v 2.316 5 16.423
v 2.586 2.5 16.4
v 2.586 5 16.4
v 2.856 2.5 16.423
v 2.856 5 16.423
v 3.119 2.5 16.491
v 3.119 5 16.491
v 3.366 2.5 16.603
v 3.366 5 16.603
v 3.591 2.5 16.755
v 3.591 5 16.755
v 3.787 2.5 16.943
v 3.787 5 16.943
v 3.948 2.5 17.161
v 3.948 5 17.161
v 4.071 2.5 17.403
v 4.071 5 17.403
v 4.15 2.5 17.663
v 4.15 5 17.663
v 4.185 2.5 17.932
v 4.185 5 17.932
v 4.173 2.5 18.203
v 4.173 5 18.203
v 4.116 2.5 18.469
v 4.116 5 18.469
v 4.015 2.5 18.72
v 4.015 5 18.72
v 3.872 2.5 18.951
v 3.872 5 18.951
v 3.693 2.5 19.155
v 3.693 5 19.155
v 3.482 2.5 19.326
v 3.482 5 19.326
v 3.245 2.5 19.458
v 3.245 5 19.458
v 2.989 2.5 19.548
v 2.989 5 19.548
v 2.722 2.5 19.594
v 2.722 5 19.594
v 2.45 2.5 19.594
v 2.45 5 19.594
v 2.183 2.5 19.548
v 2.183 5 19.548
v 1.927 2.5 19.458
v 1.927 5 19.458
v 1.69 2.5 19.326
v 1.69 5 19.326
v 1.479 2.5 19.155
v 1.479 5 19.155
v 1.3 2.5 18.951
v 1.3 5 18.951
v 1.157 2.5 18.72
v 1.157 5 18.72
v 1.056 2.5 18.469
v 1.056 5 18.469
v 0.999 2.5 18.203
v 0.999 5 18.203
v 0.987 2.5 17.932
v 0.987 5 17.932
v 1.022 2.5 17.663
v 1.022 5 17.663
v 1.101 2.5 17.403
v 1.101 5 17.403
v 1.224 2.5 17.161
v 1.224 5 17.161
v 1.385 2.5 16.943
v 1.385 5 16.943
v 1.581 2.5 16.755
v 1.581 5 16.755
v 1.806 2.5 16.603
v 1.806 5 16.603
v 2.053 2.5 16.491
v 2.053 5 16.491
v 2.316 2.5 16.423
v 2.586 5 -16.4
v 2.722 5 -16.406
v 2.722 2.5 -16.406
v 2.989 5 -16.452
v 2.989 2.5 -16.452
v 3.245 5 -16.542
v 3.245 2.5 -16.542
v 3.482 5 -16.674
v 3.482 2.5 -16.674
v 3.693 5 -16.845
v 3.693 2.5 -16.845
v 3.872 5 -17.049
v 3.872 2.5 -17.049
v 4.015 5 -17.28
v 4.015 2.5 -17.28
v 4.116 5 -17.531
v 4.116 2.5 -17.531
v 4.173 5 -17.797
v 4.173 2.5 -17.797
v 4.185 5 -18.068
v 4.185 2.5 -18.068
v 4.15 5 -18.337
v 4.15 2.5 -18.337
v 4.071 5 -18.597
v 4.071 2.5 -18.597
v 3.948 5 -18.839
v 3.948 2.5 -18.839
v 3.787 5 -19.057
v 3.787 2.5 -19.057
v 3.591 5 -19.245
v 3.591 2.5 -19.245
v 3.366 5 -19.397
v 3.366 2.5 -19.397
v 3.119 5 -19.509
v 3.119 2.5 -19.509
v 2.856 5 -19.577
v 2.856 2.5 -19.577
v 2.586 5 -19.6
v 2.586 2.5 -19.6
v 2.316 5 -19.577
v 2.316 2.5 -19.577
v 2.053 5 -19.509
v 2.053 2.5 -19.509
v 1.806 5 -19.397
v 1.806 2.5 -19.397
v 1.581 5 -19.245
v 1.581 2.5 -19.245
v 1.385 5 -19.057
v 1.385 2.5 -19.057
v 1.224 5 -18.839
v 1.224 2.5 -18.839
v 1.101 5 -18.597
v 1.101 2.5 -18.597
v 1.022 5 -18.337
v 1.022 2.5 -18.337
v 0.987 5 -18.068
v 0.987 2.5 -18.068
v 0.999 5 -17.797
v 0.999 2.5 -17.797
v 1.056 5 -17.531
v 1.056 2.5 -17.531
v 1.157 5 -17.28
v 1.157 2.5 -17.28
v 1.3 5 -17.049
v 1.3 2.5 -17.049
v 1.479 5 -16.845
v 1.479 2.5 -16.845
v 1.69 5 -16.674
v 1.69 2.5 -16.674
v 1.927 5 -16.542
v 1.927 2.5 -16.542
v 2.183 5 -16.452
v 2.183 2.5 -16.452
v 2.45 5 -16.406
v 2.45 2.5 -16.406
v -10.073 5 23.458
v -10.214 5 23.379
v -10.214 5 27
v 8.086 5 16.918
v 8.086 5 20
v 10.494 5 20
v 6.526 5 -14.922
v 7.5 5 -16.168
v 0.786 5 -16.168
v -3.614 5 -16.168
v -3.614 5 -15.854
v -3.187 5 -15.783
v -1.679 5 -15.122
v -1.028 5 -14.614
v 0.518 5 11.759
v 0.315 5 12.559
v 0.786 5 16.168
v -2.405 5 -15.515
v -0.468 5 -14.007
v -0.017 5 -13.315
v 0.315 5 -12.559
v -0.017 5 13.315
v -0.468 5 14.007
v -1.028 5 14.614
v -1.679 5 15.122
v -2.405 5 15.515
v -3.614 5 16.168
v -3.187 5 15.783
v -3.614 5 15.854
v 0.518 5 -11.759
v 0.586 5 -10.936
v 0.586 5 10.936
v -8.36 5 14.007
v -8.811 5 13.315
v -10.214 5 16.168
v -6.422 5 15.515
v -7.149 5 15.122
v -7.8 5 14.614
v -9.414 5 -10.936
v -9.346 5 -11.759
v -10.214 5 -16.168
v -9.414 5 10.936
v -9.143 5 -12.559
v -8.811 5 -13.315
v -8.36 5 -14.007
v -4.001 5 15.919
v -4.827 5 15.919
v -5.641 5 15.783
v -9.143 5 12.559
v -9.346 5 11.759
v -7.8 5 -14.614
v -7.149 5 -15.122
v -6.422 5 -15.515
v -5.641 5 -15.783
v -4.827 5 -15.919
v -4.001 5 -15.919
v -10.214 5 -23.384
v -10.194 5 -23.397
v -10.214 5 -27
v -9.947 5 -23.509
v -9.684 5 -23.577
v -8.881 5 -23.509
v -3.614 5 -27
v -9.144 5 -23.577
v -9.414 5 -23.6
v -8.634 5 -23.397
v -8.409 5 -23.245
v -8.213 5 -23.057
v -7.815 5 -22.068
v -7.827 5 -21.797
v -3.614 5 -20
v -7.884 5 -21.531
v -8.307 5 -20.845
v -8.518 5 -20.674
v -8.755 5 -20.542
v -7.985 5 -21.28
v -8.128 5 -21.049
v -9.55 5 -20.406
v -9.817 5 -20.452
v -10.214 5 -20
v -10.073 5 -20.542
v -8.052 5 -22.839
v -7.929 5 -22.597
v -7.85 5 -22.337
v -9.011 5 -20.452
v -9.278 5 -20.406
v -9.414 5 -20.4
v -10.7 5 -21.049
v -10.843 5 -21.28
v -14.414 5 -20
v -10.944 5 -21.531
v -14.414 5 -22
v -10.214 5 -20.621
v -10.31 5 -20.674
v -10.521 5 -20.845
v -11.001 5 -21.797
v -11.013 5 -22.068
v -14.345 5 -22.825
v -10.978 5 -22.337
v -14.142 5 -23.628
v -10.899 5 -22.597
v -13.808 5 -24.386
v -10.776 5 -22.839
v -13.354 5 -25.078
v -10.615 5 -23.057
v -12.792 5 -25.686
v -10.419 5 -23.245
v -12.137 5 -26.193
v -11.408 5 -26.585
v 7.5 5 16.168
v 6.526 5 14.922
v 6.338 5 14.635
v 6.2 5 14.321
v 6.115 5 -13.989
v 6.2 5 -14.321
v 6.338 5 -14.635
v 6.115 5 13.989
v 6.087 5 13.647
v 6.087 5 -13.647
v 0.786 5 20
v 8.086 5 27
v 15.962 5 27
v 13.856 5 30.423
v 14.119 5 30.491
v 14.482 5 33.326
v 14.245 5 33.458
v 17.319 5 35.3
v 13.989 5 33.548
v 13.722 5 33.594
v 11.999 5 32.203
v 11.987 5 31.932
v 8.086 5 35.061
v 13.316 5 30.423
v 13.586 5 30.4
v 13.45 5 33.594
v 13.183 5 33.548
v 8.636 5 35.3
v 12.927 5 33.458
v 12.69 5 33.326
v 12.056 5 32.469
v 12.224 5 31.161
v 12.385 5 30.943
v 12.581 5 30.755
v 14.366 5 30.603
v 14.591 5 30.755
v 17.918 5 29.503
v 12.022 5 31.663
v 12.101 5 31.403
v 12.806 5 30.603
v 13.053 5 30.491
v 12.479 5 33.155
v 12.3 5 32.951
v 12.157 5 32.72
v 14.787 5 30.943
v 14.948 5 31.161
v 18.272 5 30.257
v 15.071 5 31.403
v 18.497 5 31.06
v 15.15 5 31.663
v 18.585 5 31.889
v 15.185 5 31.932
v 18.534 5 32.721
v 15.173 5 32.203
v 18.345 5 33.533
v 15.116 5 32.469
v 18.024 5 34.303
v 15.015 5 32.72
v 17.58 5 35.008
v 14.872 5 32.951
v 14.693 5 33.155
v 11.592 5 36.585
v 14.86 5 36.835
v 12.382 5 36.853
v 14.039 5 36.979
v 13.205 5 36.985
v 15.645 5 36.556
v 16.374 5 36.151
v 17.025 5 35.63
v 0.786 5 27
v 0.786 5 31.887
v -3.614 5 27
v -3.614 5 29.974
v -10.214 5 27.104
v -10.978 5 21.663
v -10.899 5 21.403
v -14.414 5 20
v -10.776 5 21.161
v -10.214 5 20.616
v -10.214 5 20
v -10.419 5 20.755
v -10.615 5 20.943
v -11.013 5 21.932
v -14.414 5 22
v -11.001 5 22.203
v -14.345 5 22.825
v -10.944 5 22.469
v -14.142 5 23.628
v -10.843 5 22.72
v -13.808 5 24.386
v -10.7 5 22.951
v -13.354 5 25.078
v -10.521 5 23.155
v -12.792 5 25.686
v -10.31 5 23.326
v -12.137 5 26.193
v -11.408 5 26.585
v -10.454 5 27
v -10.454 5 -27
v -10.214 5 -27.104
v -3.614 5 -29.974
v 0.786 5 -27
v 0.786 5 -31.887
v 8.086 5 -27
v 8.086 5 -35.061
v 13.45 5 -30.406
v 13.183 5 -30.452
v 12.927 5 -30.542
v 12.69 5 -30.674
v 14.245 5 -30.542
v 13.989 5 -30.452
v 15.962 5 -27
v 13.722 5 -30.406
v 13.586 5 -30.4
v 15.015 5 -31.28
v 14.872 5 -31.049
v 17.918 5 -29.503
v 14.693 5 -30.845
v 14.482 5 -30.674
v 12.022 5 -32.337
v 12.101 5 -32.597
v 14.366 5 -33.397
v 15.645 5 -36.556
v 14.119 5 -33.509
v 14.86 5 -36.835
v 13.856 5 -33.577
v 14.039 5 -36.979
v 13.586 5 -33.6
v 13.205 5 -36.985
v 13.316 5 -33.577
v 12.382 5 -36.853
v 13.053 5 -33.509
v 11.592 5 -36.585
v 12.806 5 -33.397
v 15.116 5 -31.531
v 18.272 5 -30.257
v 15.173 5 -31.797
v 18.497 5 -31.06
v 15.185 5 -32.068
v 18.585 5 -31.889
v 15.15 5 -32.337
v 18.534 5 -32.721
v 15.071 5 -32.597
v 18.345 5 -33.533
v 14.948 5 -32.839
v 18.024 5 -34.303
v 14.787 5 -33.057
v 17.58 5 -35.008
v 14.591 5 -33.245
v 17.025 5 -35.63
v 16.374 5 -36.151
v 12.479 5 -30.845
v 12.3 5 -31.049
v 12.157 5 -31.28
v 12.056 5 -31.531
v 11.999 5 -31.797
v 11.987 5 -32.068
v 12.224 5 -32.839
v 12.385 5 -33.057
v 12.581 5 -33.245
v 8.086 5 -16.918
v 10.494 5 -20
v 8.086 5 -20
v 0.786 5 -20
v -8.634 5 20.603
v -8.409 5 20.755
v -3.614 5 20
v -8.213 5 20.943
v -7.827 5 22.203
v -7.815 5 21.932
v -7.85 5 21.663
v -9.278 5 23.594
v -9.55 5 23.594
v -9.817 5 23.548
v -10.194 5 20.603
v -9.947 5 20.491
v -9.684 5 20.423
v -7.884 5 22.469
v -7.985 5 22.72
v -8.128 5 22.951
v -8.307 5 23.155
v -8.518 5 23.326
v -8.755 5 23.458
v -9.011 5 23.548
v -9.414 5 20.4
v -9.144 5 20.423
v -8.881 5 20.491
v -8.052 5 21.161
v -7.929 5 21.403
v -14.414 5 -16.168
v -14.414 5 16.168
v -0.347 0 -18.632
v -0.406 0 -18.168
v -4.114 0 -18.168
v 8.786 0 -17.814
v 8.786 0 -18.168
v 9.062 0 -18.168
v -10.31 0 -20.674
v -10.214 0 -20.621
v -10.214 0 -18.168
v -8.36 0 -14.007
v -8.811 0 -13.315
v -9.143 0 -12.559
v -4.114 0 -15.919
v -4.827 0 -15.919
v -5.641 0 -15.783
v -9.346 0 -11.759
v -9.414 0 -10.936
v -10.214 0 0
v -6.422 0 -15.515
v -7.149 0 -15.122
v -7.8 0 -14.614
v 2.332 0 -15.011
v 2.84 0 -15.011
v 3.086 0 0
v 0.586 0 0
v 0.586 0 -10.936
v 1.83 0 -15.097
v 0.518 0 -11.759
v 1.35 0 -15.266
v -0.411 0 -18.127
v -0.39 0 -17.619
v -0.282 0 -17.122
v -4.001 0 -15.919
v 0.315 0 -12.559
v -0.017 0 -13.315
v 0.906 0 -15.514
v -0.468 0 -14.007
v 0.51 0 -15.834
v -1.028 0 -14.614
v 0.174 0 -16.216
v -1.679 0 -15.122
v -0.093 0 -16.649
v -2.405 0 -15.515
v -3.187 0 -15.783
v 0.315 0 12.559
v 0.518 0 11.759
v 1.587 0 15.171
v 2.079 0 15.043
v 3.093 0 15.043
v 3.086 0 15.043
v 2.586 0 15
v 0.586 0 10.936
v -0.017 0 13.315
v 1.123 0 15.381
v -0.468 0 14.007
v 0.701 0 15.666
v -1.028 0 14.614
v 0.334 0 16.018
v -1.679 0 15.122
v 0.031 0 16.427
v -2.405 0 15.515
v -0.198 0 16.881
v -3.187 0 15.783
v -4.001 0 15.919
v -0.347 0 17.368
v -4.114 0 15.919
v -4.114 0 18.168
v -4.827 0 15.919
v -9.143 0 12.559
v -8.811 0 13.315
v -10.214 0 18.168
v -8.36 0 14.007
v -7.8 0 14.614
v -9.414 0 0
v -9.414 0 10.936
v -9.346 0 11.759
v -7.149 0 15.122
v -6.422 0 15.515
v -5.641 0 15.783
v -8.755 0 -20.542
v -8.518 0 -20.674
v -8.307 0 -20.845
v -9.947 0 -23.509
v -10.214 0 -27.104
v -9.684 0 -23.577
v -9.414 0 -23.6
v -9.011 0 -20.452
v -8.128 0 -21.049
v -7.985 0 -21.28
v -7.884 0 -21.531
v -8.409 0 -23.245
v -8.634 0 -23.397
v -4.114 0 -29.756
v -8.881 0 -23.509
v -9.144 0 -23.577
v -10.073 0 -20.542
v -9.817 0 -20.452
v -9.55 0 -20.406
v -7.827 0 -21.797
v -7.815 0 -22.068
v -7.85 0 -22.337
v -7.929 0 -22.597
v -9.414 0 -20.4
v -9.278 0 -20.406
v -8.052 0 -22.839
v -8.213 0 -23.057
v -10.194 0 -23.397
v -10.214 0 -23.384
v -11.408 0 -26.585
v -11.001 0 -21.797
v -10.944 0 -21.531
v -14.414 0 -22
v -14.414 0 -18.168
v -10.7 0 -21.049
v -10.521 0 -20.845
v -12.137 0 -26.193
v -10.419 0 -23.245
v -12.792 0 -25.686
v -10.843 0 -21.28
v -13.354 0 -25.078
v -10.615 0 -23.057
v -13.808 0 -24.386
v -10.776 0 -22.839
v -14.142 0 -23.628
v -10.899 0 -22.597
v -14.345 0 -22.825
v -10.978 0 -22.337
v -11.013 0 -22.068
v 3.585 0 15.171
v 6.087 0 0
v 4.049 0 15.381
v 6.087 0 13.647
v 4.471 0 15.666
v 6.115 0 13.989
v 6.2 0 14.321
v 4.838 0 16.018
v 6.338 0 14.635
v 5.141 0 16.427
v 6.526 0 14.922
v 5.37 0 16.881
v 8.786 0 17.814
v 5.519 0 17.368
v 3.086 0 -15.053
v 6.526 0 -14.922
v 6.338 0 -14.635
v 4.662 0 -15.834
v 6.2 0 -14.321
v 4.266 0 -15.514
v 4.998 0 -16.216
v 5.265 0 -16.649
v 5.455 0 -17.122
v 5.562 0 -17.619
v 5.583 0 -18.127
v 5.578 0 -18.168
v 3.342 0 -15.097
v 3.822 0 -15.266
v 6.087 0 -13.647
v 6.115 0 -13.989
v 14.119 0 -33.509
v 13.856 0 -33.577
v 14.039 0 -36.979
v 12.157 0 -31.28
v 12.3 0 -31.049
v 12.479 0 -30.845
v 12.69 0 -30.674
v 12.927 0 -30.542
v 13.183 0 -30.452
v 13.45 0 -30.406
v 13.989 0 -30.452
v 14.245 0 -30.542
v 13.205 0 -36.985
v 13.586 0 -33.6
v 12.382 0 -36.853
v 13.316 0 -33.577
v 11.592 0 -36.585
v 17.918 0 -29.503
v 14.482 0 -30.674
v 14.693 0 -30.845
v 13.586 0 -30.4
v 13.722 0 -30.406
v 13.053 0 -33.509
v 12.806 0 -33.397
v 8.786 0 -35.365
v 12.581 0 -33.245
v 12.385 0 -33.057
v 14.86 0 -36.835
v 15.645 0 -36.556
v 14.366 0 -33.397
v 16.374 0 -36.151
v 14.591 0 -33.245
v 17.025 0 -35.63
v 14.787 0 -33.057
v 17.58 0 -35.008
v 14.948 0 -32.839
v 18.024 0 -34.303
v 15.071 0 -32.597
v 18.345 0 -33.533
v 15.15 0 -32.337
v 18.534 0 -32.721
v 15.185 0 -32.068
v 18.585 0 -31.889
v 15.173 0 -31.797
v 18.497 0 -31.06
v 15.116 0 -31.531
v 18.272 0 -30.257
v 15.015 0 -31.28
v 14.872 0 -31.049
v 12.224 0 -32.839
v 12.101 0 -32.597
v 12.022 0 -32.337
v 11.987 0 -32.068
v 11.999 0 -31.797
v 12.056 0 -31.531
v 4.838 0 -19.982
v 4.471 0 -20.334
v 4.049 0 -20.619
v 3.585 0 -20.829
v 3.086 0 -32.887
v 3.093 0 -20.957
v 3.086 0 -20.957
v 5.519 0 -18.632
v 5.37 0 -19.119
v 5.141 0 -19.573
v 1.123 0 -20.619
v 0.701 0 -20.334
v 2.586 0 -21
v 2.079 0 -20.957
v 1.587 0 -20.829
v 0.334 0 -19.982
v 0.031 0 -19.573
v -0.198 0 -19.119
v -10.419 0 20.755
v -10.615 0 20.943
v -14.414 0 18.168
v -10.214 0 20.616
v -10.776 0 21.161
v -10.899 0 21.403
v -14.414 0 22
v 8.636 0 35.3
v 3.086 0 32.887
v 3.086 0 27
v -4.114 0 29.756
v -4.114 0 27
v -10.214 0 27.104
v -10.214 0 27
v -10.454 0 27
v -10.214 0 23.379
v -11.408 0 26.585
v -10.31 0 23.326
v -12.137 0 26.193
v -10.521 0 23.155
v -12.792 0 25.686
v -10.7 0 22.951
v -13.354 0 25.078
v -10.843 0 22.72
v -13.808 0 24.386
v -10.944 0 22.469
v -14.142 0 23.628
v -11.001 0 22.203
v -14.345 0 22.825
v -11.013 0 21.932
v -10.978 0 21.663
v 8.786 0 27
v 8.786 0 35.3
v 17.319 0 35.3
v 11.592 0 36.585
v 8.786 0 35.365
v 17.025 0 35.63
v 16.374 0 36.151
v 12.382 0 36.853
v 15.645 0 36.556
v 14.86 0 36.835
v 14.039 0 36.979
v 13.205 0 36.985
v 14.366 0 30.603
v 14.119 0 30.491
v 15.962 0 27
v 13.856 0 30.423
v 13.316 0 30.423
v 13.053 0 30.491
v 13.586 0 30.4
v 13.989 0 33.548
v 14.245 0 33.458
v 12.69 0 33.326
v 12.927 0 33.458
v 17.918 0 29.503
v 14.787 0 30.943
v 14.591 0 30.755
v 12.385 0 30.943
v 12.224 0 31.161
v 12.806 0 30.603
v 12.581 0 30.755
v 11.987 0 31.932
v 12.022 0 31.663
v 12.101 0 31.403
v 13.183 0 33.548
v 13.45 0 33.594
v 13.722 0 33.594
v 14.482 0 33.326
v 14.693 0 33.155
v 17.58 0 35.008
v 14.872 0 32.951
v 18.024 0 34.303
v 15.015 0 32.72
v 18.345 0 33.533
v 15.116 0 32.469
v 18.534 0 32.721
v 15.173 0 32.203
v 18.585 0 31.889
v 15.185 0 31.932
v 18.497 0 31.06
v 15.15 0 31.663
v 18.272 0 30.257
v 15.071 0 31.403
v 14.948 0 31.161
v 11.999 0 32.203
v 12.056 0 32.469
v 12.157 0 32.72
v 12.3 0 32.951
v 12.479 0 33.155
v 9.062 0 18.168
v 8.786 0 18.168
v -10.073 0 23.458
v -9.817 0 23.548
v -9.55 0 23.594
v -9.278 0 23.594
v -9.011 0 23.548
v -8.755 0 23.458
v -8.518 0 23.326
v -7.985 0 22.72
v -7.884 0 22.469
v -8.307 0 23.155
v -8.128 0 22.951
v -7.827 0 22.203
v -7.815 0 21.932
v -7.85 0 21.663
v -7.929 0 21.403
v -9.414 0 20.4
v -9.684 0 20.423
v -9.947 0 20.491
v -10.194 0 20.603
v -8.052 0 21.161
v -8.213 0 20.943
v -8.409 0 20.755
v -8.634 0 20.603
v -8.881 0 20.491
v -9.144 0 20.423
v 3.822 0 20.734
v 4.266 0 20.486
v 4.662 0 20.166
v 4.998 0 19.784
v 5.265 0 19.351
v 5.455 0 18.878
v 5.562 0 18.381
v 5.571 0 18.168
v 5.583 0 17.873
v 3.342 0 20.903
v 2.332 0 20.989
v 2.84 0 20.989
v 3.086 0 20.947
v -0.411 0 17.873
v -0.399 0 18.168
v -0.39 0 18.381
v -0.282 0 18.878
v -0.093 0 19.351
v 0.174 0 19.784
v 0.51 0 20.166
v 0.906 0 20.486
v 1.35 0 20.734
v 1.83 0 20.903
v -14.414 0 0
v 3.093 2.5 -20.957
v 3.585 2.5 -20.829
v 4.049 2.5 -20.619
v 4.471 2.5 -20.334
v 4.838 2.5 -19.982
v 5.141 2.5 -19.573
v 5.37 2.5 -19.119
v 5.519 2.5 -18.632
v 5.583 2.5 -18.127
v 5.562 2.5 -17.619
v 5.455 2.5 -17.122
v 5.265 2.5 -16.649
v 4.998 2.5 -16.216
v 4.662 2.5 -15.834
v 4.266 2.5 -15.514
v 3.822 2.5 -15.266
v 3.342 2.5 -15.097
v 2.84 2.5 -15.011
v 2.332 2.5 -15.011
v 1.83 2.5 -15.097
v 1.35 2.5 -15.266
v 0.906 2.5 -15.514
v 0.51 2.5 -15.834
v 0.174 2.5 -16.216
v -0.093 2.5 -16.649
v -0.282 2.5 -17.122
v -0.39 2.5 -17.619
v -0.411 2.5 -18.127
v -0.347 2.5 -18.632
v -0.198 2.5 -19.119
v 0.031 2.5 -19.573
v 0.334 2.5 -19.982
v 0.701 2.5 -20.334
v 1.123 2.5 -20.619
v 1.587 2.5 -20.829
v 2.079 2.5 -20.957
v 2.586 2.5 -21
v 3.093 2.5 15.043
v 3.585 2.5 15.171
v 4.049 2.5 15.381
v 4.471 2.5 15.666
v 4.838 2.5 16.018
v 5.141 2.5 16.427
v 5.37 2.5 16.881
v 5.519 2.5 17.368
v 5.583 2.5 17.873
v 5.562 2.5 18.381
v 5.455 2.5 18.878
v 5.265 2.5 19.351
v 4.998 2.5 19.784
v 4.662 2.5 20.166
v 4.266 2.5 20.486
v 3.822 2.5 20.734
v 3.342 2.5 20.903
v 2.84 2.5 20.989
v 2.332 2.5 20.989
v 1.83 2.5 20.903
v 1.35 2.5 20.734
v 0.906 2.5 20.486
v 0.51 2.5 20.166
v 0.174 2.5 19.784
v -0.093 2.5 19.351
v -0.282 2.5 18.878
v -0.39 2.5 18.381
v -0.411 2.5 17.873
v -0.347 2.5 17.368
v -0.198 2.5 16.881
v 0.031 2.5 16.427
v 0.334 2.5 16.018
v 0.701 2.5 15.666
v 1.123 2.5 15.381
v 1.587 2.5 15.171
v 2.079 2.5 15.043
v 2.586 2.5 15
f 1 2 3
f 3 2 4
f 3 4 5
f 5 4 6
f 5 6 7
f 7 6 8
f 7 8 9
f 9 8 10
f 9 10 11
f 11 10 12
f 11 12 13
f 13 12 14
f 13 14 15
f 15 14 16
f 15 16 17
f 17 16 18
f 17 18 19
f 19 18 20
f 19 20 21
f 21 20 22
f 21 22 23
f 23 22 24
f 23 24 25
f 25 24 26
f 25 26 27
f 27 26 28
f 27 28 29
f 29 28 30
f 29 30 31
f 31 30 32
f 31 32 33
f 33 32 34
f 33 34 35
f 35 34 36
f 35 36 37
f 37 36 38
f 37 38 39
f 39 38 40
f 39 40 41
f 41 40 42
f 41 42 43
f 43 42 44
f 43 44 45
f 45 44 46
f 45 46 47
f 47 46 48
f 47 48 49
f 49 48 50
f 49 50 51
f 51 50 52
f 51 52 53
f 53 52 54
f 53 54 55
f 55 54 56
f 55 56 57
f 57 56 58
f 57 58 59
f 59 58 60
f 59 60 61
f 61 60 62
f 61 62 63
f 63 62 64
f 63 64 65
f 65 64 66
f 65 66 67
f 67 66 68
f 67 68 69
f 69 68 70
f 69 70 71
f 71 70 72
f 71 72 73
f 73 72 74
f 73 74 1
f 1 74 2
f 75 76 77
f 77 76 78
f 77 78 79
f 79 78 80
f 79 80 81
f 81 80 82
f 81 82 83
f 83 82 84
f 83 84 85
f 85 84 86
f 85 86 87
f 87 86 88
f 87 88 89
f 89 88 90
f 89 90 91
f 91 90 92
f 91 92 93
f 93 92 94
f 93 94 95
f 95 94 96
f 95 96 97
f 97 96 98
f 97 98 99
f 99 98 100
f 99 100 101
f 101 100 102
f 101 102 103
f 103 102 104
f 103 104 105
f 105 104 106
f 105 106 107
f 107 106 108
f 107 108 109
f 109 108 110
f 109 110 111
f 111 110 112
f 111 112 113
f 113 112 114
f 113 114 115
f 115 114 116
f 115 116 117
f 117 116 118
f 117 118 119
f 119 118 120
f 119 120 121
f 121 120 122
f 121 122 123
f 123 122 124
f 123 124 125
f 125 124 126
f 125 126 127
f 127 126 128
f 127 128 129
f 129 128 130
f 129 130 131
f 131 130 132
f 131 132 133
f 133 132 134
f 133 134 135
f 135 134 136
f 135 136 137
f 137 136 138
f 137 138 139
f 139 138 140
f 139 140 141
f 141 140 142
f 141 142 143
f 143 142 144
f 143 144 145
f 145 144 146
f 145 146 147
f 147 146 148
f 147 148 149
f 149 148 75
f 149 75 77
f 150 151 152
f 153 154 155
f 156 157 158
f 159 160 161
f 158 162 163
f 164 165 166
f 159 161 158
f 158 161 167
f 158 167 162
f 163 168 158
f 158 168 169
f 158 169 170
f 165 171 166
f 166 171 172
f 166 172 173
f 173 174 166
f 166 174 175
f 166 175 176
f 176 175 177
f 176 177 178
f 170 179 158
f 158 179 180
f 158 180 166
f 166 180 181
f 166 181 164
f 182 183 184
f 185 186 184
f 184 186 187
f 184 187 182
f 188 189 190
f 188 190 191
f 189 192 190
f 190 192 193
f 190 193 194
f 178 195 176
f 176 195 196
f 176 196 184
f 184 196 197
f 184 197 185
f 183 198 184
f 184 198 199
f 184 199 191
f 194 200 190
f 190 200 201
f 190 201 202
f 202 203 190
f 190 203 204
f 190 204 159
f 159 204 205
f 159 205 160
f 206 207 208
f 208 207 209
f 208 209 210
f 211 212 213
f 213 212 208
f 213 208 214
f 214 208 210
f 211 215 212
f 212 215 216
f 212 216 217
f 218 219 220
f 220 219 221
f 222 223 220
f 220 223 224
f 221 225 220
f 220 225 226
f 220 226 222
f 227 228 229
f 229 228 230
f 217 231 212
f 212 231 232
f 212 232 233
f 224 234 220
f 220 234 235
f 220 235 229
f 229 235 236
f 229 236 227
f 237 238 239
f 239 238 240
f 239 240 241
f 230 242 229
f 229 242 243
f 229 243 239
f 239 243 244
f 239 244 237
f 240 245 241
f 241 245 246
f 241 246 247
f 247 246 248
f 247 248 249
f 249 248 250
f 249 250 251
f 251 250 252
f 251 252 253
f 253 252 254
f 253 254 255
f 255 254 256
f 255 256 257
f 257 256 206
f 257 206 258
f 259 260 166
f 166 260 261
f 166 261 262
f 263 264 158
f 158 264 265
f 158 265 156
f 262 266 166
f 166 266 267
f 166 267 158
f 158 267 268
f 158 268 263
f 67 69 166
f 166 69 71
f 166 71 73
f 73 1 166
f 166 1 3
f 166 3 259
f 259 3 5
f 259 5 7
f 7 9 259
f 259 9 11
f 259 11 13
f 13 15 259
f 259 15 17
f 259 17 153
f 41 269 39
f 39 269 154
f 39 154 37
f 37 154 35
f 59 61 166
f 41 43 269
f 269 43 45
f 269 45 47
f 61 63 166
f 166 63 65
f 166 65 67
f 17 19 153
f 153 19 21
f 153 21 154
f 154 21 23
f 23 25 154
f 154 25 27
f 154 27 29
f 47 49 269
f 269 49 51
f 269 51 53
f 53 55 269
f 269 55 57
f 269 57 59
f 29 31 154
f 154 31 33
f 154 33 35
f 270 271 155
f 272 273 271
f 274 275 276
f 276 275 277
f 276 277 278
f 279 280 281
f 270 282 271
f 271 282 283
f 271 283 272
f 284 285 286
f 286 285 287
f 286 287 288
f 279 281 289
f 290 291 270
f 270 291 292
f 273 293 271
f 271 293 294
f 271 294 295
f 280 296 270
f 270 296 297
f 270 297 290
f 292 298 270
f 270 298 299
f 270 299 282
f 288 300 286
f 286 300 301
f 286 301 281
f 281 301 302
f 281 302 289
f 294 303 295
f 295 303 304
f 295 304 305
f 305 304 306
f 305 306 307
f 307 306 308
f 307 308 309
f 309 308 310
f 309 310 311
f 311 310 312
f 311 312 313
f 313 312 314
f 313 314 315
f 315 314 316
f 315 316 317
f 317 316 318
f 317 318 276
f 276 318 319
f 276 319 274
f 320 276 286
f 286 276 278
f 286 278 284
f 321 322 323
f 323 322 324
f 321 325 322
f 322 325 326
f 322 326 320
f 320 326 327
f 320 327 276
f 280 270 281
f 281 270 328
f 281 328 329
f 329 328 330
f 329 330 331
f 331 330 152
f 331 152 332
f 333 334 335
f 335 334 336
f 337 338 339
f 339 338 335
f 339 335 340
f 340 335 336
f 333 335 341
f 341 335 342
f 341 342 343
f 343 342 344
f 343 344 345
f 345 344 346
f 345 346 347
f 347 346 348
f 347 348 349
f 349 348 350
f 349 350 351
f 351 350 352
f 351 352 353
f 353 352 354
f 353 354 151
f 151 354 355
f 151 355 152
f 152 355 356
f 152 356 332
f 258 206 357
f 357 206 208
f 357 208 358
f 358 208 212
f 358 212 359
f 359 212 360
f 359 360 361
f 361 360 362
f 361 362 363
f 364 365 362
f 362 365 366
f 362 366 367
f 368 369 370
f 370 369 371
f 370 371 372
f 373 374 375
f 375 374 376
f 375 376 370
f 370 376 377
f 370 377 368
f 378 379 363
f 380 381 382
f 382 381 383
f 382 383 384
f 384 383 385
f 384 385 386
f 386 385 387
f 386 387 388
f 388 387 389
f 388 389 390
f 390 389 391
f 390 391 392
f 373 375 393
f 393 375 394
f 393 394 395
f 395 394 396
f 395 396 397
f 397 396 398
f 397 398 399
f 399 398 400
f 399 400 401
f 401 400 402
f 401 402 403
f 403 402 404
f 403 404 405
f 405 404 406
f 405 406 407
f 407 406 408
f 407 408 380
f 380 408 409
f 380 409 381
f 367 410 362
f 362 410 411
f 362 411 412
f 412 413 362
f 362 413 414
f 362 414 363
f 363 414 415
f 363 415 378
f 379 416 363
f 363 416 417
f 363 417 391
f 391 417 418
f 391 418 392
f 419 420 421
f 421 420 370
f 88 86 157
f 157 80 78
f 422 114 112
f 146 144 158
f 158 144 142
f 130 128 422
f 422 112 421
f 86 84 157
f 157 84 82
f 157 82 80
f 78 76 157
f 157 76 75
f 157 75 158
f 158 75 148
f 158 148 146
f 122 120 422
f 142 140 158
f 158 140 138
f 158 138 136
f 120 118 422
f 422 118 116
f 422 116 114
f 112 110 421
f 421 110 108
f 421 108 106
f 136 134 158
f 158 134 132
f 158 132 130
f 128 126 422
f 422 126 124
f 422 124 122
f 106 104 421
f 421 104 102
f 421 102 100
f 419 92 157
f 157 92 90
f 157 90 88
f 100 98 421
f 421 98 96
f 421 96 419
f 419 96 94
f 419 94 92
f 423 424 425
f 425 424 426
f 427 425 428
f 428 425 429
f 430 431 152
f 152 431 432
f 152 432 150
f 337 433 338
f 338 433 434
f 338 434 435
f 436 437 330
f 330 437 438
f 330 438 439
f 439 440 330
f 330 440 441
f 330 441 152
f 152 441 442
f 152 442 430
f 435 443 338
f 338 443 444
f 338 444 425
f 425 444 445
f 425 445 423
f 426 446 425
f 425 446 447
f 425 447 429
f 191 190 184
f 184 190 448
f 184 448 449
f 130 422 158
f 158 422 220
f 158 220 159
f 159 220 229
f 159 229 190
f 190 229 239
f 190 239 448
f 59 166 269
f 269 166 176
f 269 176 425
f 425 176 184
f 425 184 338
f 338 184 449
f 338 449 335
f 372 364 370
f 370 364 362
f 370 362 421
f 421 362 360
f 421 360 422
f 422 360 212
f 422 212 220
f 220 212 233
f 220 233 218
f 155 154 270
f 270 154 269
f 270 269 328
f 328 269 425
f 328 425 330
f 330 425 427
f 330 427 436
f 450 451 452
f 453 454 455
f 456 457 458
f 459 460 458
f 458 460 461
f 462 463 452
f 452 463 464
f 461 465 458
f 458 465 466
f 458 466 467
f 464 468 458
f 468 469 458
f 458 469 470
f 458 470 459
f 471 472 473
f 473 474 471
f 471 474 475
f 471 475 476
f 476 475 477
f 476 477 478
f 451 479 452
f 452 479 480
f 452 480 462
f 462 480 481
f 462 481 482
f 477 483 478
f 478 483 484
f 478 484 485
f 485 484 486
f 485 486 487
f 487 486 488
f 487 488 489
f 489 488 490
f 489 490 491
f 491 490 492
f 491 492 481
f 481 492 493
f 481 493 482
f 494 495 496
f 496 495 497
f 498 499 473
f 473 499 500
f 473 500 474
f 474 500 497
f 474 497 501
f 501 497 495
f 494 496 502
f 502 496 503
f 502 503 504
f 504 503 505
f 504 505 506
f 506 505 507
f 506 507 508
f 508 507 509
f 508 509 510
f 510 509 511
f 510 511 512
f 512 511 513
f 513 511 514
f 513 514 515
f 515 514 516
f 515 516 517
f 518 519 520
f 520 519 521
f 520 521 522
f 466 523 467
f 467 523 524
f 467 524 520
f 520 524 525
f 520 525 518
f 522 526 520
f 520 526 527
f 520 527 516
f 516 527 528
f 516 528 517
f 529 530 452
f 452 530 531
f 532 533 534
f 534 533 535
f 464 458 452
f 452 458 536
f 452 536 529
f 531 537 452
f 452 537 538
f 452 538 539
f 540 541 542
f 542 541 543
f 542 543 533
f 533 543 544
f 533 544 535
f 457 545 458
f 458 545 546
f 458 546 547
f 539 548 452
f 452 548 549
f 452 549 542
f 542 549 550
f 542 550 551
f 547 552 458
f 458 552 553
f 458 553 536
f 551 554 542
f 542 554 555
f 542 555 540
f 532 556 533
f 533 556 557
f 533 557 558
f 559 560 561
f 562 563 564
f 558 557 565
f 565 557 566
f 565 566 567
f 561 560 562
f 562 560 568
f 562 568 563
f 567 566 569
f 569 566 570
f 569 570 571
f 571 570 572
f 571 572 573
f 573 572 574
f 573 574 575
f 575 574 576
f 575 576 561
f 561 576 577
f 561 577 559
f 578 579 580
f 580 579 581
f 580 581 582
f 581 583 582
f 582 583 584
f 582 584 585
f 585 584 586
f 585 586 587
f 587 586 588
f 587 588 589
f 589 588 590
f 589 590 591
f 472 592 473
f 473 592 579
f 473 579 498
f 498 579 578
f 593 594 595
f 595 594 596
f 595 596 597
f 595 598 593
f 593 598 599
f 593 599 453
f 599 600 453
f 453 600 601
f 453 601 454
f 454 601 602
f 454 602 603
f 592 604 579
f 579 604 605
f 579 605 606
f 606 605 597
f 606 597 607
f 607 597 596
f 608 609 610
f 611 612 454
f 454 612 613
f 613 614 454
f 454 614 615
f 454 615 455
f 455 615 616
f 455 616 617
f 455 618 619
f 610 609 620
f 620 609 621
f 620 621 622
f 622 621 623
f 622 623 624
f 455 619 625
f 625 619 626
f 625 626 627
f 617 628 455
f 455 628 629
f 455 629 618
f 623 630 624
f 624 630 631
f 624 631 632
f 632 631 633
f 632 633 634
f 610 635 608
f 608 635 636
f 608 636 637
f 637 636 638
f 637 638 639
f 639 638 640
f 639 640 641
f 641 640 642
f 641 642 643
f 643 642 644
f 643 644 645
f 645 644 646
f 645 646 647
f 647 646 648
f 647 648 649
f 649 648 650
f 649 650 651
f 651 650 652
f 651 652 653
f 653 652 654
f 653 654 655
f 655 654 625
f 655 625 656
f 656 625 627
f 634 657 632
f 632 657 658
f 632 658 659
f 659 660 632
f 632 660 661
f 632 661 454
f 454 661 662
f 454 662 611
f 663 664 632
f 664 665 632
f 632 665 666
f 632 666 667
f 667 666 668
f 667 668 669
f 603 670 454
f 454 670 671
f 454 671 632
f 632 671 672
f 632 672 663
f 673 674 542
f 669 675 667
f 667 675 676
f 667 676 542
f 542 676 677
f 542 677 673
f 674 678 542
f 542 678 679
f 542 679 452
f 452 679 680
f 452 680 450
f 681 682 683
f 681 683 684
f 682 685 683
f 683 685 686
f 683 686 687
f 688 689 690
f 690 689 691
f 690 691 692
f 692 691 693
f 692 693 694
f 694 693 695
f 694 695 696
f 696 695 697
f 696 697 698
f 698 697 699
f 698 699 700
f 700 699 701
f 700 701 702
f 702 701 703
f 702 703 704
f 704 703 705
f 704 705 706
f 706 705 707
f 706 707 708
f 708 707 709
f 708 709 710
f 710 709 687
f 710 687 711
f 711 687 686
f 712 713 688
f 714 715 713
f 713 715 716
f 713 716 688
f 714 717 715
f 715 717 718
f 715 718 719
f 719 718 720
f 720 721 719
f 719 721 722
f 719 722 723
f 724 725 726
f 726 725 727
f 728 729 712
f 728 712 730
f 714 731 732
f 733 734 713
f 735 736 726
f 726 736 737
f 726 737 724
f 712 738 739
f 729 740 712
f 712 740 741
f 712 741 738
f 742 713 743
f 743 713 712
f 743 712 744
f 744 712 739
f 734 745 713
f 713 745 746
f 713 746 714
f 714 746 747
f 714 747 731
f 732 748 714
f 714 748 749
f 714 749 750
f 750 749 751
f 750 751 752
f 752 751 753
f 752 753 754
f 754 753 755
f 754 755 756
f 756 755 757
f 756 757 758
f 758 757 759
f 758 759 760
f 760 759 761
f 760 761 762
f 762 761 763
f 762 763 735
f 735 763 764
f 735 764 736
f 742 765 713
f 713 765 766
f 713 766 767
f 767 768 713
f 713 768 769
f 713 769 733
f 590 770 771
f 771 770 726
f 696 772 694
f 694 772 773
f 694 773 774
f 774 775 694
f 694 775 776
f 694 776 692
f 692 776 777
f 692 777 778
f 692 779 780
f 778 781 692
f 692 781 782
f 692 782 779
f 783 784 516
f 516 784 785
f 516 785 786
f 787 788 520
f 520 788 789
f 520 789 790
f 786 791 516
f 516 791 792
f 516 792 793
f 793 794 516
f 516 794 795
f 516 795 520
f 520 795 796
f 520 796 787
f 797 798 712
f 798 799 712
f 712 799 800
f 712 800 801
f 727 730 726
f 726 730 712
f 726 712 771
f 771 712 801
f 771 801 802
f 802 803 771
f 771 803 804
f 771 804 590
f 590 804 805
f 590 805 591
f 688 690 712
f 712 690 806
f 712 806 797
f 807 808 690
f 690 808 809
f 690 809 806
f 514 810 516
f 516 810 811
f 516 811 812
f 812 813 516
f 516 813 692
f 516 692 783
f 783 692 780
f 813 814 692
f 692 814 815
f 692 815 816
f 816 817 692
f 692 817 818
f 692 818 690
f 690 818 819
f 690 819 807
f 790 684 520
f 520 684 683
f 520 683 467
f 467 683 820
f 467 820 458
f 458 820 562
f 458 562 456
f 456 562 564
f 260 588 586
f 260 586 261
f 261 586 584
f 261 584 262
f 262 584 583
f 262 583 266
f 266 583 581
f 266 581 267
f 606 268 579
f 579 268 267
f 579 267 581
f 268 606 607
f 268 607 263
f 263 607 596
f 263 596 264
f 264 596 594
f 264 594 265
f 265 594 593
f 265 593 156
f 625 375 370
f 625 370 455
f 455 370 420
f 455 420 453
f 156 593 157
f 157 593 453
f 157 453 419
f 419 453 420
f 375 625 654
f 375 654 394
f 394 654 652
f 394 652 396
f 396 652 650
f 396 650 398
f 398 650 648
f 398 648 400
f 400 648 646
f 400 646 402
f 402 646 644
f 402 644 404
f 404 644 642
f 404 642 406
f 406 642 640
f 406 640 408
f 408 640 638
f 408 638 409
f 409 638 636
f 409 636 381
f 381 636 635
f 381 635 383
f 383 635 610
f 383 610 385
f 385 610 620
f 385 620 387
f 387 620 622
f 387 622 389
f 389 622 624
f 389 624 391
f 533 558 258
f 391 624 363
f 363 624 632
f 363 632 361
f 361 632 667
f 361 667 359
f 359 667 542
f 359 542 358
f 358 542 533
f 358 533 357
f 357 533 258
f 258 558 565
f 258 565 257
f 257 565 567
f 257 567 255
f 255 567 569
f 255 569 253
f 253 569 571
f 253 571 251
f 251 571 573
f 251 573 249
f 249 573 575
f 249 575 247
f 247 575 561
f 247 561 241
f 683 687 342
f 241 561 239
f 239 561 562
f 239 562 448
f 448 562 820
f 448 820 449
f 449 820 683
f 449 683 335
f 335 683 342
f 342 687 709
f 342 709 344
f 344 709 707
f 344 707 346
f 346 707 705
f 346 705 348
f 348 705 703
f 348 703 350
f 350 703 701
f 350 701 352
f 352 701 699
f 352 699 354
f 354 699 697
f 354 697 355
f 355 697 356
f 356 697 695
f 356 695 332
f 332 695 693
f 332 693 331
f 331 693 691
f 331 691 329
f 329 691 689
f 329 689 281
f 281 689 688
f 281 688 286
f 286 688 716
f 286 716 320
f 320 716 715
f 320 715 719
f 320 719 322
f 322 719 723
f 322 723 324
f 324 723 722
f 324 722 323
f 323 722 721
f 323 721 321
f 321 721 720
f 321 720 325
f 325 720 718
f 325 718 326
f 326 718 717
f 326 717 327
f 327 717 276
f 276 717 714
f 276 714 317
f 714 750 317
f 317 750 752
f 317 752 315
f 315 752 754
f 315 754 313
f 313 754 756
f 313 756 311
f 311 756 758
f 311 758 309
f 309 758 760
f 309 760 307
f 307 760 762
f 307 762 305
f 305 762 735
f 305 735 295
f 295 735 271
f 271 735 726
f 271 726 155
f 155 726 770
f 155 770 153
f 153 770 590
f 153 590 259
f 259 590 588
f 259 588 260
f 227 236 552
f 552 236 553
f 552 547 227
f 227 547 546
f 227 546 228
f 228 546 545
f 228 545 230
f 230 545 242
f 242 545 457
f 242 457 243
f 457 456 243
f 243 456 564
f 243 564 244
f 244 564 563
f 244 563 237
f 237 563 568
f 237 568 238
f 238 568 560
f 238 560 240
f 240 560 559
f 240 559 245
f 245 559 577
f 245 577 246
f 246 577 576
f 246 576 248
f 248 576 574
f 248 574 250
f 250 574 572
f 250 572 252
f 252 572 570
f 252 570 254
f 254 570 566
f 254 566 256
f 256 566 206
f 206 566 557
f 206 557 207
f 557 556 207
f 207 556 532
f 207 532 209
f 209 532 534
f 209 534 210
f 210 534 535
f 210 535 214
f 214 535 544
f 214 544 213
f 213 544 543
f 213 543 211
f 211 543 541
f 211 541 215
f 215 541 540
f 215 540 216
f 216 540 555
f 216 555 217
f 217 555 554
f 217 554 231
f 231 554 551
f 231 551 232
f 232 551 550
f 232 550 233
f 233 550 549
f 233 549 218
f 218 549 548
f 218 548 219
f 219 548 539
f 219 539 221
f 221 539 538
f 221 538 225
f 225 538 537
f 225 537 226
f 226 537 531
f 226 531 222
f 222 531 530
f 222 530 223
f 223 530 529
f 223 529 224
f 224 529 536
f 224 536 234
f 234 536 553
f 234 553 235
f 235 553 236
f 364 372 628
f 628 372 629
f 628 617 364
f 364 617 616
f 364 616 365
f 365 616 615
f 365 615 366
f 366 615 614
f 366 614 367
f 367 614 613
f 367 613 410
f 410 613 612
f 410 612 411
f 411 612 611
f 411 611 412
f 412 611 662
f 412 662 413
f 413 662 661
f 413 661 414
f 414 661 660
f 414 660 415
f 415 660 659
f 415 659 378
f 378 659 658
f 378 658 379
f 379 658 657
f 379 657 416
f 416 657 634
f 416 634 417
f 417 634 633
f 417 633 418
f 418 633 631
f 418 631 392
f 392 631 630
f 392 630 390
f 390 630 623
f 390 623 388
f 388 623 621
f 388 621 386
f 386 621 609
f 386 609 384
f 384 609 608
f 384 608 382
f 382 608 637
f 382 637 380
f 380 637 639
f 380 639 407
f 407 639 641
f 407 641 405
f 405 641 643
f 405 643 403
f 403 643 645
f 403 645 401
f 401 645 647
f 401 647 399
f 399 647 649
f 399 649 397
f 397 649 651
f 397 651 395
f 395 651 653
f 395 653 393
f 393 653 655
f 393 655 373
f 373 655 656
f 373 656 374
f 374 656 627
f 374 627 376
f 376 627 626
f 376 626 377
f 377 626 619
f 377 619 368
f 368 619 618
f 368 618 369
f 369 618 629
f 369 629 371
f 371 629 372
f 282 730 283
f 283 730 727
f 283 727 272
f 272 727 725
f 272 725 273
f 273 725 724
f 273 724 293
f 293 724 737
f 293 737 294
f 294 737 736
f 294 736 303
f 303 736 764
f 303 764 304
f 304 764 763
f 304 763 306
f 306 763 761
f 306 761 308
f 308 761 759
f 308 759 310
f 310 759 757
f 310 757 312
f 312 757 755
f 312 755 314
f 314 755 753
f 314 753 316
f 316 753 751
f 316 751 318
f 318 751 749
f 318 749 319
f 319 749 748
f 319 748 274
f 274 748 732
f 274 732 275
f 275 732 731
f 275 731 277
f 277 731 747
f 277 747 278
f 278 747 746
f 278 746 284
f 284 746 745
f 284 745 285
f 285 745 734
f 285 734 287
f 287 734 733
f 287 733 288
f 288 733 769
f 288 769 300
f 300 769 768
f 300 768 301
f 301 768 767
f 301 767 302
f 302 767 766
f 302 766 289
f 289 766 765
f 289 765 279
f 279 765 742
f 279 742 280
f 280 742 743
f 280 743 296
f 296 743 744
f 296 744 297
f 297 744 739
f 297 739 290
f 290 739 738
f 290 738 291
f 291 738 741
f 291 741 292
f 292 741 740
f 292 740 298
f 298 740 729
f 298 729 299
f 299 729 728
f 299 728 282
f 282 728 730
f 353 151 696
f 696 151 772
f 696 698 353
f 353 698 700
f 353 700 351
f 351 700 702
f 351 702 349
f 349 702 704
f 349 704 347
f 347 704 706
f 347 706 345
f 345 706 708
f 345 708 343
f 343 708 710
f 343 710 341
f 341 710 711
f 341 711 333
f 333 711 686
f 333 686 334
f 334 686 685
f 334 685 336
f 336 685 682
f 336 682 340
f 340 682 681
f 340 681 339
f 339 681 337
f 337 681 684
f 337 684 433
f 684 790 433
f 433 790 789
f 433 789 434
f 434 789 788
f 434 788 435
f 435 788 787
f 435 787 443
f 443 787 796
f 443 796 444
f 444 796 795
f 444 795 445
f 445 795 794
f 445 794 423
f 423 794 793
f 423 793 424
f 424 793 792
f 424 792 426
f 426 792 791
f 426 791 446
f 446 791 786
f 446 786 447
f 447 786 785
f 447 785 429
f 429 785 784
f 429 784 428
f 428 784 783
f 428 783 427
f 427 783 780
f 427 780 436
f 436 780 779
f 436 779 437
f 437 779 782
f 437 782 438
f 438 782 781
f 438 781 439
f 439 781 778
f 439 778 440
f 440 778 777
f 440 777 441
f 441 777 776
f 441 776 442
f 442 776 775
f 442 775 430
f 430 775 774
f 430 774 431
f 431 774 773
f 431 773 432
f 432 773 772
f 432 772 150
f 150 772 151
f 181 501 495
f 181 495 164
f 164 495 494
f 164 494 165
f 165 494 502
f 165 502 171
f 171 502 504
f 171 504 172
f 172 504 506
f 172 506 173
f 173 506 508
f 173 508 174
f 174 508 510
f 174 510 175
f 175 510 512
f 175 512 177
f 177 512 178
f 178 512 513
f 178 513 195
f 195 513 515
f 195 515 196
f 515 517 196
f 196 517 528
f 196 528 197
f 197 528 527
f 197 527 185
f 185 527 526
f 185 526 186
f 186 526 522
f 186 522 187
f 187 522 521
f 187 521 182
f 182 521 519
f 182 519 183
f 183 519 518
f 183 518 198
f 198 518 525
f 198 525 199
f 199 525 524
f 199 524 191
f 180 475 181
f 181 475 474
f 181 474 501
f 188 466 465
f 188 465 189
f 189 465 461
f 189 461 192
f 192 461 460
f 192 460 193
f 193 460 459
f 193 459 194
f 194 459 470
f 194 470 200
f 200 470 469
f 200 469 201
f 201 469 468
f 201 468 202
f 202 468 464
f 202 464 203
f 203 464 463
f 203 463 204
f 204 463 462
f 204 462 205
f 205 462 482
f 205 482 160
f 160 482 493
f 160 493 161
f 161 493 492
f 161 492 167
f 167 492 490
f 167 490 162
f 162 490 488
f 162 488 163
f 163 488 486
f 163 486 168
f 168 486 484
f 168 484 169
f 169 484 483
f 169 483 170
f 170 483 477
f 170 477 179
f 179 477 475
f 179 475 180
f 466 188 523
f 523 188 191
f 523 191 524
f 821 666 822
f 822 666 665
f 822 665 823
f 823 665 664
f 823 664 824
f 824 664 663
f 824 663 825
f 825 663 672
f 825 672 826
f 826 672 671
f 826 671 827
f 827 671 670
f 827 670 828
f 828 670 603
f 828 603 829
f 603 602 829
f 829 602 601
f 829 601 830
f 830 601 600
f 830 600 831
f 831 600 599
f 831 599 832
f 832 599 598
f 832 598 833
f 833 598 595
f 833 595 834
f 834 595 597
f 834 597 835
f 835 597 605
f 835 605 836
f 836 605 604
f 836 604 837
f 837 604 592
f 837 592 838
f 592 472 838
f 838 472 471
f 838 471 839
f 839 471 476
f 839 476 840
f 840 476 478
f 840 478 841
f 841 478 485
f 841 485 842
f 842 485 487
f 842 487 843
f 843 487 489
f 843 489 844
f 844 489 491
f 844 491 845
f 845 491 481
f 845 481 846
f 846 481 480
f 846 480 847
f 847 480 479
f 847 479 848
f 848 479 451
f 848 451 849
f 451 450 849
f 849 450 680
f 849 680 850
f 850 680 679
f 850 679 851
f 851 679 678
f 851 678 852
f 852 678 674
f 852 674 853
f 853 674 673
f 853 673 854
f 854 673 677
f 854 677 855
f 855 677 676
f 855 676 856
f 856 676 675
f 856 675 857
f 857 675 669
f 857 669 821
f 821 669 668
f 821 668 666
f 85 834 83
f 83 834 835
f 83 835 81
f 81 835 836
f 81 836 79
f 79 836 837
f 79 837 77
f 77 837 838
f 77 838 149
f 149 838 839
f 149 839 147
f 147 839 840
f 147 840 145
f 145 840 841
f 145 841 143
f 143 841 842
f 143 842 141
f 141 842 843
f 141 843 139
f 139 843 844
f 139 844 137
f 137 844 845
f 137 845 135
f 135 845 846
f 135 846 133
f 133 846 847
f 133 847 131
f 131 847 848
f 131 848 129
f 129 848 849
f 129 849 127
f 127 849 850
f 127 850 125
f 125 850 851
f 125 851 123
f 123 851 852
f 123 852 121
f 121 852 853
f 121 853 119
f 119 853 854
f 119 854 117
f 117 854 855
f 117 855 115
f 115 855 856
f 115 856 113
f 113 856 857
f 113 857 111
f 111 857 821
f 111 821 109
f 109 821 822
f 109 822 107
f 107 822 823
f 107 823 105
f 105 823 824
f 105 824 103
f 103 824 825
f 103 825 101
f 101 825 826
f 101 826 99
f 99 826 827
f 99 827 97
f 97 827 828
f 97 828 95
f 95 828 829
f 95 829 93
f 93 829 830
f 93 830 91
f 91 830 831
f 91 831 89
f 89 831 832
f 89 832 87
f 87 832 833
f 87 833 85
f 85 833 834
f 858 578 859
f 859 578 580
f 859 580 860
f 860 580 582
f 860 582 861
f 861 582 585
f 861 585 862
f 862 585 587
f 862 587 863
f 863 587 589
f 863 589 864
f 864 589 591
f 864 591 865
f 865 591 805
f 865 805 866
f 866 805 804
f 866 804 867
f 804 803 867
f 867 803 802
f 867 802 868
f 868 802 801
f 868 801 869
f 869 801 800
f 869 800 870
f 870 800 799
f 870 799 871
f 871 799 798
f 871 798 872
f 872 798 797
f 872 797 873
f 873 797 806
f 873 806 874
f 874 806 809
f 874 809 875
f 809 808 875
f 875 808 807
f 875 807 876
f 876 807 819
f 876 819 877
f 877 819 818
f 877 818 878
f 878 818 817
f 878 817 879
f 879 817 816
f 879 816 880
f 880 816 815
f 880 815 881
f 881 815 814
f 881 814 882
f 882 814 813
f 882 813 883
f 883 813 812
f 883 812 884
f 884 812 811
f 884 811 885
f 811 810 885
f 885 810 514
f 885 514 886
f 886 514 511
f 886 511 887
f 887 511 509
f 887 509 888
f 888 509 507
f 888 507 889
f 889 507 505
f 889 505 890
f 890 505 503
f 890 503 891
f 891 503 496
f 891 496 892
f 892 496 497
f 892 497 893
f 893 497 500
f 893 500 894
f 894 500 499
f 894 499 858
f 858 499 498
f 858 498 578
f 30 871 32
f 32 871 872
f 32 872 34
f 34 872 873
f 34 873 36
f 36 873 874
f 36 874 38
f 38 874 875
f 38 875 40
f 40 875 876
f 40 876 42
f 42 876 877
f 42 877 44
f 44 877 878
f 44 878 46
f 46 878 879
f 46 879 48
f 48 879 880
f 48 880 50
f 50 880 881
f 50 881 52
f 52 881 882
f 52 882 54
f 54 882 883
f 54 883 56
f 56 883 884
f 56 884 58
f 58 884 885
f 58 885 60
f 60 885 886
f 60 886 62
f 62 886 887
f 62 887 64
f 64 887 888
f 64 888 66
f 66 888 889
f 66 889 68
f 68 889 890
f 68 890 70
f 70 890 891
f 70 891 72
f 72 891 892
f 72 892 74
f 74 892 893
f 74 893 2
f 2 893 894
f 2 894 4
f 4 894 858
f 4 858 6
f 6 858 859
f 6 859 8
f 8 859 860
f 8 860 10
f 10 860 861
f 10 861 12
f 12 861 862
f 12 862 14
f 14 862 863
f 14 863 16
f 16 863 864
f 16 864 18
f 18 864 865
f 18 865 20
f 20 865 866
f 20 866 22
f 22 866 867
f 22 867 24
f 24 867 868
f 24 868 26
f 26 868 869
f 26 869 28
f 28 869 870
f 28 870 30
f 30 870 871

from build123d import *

# Parameters (mm, degrees)
SKIZZE1_R                       = 1.6
AUFSATZ_LINEAR_AUSTRAGEN1_DEPTH = 5
SKIZZE2_R                       = 3
SCHNITT_LINEAR_AUSTRAGEN1_DEPTH = 2.5


with BuildPart() as part:
    # Skizze1 → Aufsatz-Linear austragen1 (new body)
    with BuildSketch(Plane(origin=(0, 0, 0), x_dir=(1, 0, 0), z_dir=(0, 1, 0))):
        with BuildLine():
            Line((-11.407603893, 26.585350281), (11.592396107, 36.585350281))
            ThreePointArc((11.592396107, 36.585350281), (17.315272821, 35.330573989), (17.917777995, 29.502815505))
            Line((17.917777995, 29.502815505), (6.526122928, 14.921747017))
            ThreePointArc((6.526122928, 14.921747017), (6.199926496, 14.320953091), (6.087096426, 13.646692883))
            Line((6.087096426, 13.646692883), (6.087096426, -13.646692883))
            ThreePointArc((6.087096426, -13.646692883), (6.199926496, -14.320953091), (6.526122928, -14.921747017))
            Line((6.526122928, -14.921747017), (17.917777995, -29.502815505))
            ThreePointArc((17.917777995, -29.502815505), (17.315272821, -35.330573989), (11.592396107, -36.585350281))
            Line((11.592396107, -36.585350281), (-11.407603893, -26.585350281))
            ThreePointArc((-11.407603893, -26.585350281), (-13.595369801, -24.741518486), (-14.413973336, -22))
            Line((-14.413973336, -22), (-14.413973336, 22))
            ThreePointArc((-14.413973336, 22), (-13.595369801, 24.741518486), (-11.407603893, 26.585350281))
        make_face()
        with Locations(Location((-9.413973336, 22, 0), (0, 0, 270))):
            Circle(SKIZZE1_R, mode=Mode.SUBTRACT)
        with Locations(Location((13.586026664, 32, 0), (0, 0, 270))):
            Circle(SKIZZE1_R, mode=Mode.SUBTRACT)
        with Locations(Location((2.586026664, 18, 0), (0, 0, 270))):
            Circle(SKIZZE1_R, mode=Mode.SUBTRACT)
        with Locations(Location((2.586026664, -18, 0), (0, 0, 90))):
            Circle(SKIZZE1_R, mode=Mode.SUBTRACT)
        with Locations(Location((13.586026664, -32, 0), (0, 0, 90))):
            Circle(SKIZZE1_R, mode=Mode.SUBTRACT)
        with Locations(Location((-9.413973336, -22, 0), (0, 0, 90))):
            Circle(SKIZZE1_R, mode=Mode.SUBTRACT)
        with BuildLine():
            Line((-9.413973336, 10.935684827), (-9.413973336, -10.935684827))
            ThreePointArc((-9.413973336, -10.935684827), (-4.413973336, -15.935684827), (0.586026664, -10.935684827))
            Line((0.586026664, -10.935684827), (0.586026664, 10.935684827))
            ThreePointArc((0.586026664, 10.935684827), (-4.413973336, 15.935684827), (-9.413973336, 10.935684827))
        make_face(mode=Mode.SUBTRACT)
    extrude(amount=AUFSATZ_LINEAR_AUSTRAGEN1_DEPTH)

    # Skizze2 → Schnitt-Linear austragen1 (cut)
    with BuildSketch(Plane.XZ):
        with Locations(Location((2.586026664, -18, 0), (0, 0, 270))):
            Circle(SKIZZE2_R)
        with Locations(Location((2.586026664, 18, 0), (0, 0, 270))):
            Circle(SKIZZE2_R)
    extrude(amount=-SCHNITT_LINEAR_AUSTRAGEN1_DEPTH, mode=Mode.SUBTRACT)


solid = part.part
